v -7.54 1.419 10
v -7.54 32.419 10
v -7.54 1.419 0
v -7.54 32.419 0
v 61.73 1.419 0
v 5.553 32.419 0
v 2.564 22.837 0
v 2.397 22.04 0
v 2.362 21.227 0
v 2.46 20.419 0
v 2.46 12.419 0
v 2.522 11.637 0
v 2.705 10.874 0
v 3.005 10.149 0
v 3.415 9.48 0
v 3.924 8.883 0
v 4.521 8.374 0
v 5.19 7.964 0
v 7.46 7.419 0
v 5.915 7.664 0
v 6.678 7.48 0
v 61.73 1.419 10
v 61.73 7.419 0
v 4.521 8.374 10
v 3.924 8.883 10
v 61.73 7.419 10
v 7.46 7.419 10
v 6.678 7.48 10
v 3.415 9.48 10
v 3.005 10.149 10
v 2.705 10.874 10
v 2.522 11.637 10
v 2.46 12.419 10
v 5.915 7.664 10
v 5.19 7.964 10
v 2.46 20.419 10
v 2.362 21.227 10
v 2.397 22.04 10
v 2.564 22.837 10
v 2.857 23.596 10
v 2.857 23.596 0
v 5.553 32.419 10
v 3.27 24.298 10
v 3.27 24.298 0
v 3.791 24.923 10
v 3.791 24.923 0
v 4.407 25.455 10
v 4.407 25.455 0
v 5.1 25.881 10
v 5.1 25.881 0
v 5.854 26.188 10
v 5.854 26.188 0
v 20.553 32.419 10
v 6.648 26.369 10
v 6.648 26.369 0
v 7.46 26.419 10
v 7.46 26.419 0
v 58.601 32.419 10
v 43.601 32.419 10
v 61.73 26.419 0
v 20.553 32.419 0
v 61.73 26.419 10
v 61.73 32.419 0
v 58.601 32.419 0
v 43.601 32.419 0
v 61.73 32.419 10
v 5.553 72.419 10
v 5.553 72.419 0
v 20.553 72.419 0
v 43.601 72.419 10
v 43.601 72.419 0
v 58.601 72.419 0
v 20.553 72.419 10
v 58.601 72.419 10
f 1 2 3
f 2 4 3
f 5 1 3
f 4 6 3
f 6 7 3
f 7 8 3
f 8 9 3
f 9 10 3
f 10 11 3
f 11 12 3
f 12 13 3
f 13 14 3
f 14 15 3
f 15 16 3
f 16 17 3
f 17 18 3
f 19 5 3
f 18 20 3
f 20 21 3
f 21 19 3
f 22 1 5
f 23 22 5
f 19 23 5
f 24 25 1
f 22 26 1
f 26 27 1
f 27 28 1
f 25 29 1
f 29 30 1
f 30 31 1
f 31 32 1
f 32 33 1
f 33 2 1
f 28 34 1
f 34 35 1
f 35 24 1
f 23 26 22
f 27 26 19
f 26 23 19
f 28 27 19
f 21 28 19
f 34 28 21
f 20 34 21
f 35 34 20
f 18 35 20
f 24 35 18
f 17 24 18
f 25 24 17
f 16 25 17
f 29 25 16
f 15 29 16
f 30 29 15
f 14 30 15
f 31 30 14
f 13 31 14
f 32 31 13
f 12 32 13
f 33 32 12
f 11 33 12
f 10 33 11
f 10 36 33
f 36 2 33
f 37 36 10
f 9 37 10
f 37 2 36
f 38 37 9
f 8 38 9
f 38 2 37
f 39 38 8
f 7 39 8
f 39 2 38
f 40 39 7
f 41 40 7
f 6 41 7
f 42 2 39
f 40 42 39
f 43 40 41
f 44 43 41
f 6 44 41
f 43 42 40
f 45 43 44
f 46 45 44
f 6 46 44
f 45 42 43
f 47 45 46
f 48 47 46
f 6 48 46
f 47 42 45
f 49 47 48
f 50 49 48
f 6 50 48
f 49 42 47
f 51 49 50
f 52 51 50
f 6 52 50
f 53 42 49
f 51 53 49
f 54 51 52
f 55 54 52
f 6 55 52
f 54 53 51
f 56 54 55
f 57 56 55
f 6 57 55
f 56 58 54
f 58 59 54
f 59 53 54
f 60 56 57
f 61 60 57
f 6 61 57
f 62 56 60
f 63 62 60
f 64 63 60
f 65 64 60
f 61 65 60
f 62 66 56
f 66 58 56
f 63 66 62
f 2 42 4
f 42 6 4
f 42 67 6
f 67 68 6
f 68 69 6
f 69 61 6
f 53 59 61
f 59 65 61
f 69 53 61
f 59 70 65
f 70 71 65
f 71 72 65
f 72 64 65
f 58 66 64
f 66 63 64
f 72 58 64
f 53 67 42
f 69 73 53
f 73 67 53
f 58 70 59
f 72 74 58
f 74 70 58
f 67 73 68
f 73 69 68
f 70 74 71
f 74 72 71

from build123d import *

# Parameters (mm, degrees)
EXTRUDE_1_DEPTH = 10


with BuildPart() as part:
    # 草圖1 → 填料-伸長1 (new body)
    with BuildSketch(Plane.XY):
        with BuildLine():
            Line((7.459969379, 7.418851377), (61.73005582, 7.418851377))
            Line((61.73005582, 7.418851377), (61.73005582, 1.418851377))
            Line((61.73005582, 1.418851377), (-7.540030621, 1.418851377))
            Line((-7.540030621, 1.418851377), (-7.540030621, 22.324714328))
            Line((-7.540030621, 22.324714328), (-7.540030621, 32.418851377))
            Line((-7.540030621, 32.418851377), (5.553208045, 32.418851377))
            Line((5.553208045, 32.418851377), (5.553208045, 72.418851377))
            Line((5.553208045, 72.418851377), (20.553208045, 72.418851377))
            Line((20.553208045, 72.418851377), (20.553208045, 32.418851377))
            Line((20.553208045, 32.418851377), (43.60119499, 32.418851377))
            Line((43.60119499, 32.418851377), (43.60119499, 72.418851377))
            Line((43.60119499, 72.418851377), (58.60119499, 72.418851377))
            Line((58.60119499, 72.418851377), (58.60119499, 32.418851377))
            Line((58.60119499, 32.418851377), (61.73005582, 32.418851377))
            Line((61.73005582, 32.418851377), (61.73005582, 26.418851377))
            Line((61.73005582, 26.418851377), (7.459969379, 26.418851377))
            ThreePointArc((7.459969379, 26.418851377), (3.517633158, 24.620798228), (2.459969379, 20.418851377))
            Line((2.459969379, 20.418851377), (2.459969379, 12.418851377))
            ThreePointArc((2.459969379, 12.418851377), (3.924435473, 8.883317471), (7.459969379, 7.418851377))
        make_face()
    extrude(amount=EXTRUDE_1_DEPTH)


solid = part.part
